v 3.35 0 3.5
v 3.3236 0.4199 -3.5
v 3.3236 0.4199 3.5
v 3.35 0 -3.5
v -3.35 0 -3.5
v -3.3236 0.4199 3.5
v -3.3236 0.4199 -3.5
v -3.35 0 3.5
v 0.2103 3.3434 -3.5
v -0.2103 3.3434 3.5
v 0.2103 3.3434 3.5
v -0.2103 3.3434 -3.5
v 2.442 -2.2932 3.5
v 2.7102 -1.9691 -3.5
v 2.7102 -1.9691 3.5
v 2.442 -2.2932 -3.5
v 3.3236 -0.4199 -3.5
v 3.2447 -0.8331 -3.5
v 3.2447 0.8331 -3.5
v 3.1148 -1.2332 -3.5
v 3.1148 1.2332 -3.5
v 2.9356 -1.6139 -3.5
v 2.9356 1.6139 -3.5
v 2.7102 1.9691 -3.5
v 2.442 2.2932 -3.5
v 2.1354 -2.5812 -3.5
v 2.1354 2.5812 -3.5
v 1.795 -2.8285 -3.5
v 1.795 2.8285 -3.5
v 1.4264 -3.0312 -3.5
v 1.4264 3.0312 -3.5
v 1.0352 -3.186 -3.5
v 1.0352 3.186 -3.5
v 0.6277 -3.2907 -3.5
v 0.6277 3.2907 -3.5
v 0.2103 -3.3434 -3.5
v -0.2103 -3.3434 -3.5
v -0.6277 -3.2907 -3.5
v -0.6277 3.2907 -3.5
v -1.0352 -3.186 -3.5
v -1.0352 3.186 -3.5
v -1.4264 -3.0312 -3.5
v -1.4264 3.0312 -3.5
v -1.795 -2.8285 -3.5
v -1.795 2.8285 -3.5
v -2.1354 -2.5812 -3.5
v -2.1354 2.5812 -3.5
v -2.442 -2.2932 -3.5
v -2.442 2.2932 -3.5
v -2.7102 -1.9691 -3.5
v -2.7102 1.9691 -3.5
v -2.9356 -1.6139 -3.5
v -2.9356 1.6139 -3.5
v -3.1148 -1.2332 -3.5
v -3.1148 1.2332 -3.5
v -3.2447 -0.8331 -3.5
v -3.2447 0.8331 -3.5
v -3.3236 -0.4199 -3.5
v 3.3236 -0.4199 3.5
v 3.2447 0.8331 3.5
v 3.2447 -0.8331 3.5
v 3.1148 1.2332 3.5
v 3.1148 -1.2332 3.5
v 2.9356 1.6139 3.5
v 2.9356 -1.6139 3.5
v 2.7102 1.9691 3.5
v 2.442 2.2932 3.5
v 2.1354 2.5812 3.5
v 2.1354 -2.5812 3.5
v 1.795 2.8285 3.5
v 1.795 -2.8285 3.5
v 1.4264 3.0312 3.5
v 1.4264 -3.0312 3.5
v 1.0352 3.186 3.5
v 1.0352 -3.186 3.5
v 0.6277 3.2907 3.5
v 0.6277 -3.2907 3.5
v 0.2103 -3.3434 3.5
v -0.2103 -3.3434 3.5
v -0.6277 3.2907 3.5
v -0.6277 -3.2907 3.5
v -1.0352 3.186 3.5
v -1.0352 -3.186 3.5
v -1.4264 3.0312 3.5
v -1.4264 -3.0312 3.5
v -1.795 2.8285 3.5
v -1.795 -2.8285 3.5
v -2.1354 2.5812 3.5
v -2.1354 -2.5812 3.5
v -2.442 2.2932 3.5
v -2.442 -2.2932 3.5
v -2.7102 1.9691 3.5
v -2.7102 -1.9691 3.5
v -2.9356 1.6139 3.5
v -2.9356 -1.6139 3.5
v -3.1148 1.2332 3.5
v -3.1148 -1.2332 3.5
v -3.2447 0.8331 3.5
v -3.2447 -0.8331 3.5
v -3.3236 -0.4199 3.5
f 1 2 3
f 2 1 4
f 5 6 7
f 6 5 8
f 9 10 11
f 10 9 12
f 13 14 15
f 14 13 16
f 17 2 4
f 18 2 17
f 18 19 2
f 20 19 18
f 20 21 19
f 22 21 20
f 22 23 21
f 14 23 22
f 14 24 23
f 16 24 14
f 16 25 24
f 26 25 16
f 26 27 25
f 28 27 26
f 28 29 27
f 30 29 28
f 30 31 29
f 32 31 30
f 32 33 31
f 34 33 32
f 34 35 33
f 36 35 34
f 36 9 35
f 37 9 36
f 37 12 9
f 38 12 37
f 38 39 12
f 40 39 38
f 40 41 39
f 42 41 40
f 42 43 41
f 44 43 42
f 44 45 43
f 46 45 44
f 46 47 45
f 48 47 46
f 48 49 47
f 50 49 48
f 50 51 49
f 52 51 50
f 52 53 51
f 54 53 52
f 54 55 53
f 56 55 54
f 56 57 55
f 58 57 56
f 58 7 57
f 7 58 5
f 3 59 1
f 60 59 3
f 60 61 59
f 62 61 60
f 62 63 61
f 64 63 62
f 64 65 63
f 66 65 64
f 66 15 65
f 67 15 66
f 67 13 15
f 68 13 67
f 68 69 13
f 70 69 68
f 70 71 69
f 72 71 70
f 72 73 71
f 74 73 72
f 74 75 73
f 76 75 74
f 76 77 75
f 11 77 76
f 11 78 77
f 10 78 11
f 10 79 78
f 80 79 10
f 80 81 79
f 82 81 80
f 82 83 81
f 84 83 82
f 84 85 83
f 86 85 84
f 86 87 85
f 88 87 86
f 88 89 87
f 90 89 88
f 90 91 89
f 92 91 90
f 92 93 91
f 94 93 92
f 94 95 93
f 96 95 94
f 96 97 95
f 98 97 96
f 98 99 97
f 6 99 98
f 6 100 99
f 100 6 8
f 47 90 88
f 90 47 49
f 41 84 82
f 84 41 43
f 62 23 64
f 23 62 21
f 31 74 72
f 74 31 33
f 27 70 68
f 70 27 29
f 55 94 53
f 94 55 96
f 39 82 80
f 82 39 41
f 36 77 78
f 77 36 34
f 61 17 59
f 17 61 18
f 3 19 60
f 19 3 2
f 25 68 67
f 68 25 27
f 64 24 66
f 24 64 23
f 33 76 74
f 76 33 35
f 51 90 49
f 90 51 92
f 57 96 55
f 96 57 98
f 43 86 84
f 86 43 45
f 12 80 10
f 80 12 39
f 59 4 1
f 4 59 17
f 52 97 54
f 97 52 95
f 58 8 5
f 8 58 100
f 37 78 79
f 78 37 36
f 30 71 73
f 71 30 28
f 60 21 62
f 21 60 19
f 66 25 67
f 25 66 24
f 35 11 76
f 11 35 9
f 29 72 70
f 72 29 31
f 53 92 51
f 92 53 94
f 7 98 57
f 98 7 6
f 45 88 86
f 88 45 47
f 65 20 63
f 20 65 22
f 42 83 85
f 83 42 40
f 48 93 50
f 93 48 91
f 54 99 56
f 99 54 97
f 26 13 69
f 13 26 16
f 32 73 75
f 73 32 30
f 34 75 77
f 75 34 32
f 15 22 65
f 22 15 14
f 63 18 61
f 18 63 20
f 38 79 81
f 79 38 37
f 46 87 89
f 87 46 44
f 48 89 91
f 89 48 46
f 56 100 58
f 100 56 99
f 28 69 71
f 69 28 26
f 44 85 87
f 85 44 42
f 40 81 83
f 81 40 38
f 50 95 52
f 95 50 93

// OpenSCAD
$fn = 50;


difference() {
	union() {
		translate(v = [0, 0, -3.5000000000]) {
			cylinder(h = 7, r = 3.3500000000);
		}
	}
	union() {
		translate(v = [0, 0, -100.0000000000]) {
			cylinder(h = 200, r = 0);
		}
	}
}
